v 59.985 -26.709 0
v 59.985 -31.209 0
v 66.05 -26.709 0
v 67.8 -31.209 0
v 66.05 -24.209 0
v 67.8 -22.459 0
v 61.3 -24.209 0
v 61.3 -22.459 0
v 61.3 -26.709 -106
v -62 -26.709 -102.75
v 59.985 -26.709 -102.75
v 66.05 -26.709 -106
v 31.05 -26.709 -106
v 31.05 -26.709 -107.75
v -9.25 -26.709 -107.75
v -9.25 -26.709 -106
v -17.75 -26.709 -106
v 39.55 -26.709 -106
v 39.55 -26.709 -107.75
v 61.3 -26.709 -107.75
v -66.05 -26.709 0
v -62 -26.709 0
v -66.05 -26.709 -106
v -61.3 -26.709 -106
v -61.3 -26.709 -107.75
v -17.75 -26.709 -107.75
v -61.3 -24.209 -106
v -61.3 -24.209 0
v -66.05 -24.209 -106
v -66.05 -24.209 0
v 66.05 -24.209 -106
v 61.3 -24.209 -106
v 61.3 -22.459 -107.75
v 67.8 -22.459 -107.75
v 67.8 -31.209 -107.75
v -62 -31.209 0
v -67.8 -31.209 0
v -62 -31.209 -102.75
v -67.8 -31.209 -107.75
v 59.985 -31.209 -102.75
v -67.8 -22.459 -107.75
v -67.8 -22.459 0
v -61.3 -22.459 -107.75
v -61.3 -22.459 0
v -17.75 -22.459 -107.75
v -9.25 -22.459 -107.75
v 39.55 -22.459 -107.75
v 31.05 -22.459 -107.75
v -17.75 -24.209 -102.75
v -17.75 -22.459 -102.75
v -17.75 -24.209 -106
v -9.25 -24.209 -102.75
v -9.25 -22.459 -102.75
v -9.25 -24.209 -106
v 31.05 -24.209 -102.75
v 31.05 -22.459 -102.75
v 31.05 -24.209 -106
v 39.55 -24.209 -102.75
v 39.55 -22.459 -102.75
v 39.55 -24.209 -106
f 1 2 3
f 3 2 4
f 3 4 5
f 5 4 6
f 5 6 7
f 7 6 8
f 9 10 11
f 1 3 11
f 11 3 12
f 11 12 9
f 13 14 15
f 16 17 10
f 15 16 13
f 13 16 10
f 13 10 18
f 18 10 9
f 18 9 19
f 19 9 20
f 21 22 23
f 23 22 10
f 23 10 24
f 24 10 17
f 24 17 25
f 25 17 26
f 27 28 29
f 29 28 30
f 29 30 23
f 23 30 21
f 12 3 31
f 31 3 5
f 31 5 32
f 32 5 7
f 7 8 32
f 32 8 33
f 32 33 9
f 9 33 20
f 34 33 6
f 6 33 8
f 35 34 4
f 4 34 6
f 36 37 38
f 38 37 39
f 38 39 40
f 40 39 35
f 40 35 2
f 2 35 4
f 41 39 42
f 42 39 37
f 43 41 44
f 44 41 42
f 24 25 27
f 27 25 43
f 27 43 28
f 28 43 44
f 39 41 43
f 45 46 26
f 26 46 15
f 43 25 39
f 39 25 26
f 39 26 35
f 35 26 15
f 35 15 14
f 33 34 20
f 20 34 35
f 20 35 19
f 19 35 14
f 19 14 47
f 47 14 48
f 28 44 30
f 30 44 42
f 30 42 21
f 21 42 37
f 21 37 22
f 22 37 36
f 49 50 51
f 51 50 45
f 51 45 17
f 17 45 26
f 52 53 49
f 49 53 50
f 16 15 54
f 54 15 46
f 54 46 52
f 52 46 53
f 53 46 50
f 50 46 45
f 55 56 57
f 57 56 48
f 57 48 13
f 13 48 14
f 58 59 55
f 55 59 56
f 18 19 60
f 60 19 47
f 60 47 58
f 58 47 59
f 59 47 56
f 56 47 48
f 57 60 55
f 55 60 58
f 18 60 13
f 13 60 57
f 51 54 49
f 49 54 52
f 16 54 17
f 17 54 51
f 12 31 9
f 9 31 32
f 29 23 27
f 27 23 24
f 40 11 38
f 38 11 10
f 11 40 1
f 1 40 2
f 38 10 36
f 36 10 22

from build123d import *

# Parameters (mm, degrees)
BOSS_EXTRUDE1_DEPTH = 107.75
SKETCH2_W           = 8.5
SKETCH2_H           = 5
BOSS_EXTRUDE2_DEPTH = 4.25
SKETCH3_W           = 8.5
SKETCH3_H           = 2.5
CUT_EXTRUDE1_DEPTH  = 3.25
SKETCH4_W           = 1.75
SKETCH4_H           = 2.5
BOSS_EXTRUDE3_DEPTH = 4.75
SKETCH5_W           = 1.75
SKETCH5_H           = 2.5
BOSS_EXTRUDE4_DEPTH = 4.75
SKETCH7_W           = 121.985175889
SKETCH7_H           = 106.89742867
CUT_EXTRUDE4_DEPTH  = 4.5


with BuildPart() as part:
    # Sketch1 → Boss-Extrude1 (new body)
    with BuildSketch(Plane.XY):
        Polygon((-61.3, -24.208957416), (-61.3, -22.458957416), (-67.8, -22.458957416), (-67.8, -31.208957416), (67.8, -31.208957416), (67.8, -22.458957416), (61.3, -22.458957416), (61.3, -24.208957416), (66.05, -24.208957416), (66.05, -26.708957416), (-66.05, -26.708957416), (-66.05, -24.208957416), align=None)
    extrude(amount=-BOSS_EXTRUDE1_DEPTH)

    # Sketch2 → Boss-Extrude2 (add)
    with BuildSketch(Plane(origin=(0, -26.708957416, 0), x_dir=(1, 0, 0), z_dir=(0, 1, 0))):
        with Locations((-13.5, 105.25)):
            Rectangle(SKETCH2_W, SKETCH2_H)
        with Locations((35.3, 105.25)):
            Rectangle(SKETCH2_W, SKETCH2_H)
    extrude(amount=BOSS_EXTRUDE2_DEPTH)

    # Sketch3 → Cut-Extrude1 (cut)
    with BuildSketch(Plane.XY.offset(-102.75)):
        with Locations((-13.5, -25.458957416)):
            Rectangle(SKETCH3_W, SKETCH3_H)
        with Locations((35.3, -25.458957416)):
            Rectangle(SKETCH3_W, SKETCH3_H)
    extrude(amount=-CUT_EXTRUDE1_DEPTH, mode=Mode.SUBTRACT)

    # Sketch4 → Boss-Extrude3 (add)
    with BuildSketch(Plane.ZY.offset(-66.05)):
        with Locations((-106.875, -25.458957416)):
            Rectangle(SKETCH4_W, SKETCH4_H)
    extrude(amount=BOSS_EXTRUDE3_DEPTH)

    # Sketch5 → Boss-Extrude4 (add)
    with BuildSketch(Plane(origin=(-66.05, 0, 0), x_dir=(0, 0, -1), z_dir=(1, 0, 0))):
        with Locations((106.875, -25.458957416)):
            Rectangle(SKETCH5_W, SKETCH5_H)
    extrude(amount=BOSS_EXTRUDE4_DEPTH)

    # Sketch7 → Cut-Extrude4 (cut)
    with BuildSketch(Plane.XZ.offset(31.208957416)):
        with Locations((-1.007412056, -49.301285665)):
            Rectangle(SKETCH7_W, SKETCH7_H)
    extrude(amount=-CUT_EXTRUDE4_DEPTH, mode=Mode.SUBTRACT)


solid = part.part
